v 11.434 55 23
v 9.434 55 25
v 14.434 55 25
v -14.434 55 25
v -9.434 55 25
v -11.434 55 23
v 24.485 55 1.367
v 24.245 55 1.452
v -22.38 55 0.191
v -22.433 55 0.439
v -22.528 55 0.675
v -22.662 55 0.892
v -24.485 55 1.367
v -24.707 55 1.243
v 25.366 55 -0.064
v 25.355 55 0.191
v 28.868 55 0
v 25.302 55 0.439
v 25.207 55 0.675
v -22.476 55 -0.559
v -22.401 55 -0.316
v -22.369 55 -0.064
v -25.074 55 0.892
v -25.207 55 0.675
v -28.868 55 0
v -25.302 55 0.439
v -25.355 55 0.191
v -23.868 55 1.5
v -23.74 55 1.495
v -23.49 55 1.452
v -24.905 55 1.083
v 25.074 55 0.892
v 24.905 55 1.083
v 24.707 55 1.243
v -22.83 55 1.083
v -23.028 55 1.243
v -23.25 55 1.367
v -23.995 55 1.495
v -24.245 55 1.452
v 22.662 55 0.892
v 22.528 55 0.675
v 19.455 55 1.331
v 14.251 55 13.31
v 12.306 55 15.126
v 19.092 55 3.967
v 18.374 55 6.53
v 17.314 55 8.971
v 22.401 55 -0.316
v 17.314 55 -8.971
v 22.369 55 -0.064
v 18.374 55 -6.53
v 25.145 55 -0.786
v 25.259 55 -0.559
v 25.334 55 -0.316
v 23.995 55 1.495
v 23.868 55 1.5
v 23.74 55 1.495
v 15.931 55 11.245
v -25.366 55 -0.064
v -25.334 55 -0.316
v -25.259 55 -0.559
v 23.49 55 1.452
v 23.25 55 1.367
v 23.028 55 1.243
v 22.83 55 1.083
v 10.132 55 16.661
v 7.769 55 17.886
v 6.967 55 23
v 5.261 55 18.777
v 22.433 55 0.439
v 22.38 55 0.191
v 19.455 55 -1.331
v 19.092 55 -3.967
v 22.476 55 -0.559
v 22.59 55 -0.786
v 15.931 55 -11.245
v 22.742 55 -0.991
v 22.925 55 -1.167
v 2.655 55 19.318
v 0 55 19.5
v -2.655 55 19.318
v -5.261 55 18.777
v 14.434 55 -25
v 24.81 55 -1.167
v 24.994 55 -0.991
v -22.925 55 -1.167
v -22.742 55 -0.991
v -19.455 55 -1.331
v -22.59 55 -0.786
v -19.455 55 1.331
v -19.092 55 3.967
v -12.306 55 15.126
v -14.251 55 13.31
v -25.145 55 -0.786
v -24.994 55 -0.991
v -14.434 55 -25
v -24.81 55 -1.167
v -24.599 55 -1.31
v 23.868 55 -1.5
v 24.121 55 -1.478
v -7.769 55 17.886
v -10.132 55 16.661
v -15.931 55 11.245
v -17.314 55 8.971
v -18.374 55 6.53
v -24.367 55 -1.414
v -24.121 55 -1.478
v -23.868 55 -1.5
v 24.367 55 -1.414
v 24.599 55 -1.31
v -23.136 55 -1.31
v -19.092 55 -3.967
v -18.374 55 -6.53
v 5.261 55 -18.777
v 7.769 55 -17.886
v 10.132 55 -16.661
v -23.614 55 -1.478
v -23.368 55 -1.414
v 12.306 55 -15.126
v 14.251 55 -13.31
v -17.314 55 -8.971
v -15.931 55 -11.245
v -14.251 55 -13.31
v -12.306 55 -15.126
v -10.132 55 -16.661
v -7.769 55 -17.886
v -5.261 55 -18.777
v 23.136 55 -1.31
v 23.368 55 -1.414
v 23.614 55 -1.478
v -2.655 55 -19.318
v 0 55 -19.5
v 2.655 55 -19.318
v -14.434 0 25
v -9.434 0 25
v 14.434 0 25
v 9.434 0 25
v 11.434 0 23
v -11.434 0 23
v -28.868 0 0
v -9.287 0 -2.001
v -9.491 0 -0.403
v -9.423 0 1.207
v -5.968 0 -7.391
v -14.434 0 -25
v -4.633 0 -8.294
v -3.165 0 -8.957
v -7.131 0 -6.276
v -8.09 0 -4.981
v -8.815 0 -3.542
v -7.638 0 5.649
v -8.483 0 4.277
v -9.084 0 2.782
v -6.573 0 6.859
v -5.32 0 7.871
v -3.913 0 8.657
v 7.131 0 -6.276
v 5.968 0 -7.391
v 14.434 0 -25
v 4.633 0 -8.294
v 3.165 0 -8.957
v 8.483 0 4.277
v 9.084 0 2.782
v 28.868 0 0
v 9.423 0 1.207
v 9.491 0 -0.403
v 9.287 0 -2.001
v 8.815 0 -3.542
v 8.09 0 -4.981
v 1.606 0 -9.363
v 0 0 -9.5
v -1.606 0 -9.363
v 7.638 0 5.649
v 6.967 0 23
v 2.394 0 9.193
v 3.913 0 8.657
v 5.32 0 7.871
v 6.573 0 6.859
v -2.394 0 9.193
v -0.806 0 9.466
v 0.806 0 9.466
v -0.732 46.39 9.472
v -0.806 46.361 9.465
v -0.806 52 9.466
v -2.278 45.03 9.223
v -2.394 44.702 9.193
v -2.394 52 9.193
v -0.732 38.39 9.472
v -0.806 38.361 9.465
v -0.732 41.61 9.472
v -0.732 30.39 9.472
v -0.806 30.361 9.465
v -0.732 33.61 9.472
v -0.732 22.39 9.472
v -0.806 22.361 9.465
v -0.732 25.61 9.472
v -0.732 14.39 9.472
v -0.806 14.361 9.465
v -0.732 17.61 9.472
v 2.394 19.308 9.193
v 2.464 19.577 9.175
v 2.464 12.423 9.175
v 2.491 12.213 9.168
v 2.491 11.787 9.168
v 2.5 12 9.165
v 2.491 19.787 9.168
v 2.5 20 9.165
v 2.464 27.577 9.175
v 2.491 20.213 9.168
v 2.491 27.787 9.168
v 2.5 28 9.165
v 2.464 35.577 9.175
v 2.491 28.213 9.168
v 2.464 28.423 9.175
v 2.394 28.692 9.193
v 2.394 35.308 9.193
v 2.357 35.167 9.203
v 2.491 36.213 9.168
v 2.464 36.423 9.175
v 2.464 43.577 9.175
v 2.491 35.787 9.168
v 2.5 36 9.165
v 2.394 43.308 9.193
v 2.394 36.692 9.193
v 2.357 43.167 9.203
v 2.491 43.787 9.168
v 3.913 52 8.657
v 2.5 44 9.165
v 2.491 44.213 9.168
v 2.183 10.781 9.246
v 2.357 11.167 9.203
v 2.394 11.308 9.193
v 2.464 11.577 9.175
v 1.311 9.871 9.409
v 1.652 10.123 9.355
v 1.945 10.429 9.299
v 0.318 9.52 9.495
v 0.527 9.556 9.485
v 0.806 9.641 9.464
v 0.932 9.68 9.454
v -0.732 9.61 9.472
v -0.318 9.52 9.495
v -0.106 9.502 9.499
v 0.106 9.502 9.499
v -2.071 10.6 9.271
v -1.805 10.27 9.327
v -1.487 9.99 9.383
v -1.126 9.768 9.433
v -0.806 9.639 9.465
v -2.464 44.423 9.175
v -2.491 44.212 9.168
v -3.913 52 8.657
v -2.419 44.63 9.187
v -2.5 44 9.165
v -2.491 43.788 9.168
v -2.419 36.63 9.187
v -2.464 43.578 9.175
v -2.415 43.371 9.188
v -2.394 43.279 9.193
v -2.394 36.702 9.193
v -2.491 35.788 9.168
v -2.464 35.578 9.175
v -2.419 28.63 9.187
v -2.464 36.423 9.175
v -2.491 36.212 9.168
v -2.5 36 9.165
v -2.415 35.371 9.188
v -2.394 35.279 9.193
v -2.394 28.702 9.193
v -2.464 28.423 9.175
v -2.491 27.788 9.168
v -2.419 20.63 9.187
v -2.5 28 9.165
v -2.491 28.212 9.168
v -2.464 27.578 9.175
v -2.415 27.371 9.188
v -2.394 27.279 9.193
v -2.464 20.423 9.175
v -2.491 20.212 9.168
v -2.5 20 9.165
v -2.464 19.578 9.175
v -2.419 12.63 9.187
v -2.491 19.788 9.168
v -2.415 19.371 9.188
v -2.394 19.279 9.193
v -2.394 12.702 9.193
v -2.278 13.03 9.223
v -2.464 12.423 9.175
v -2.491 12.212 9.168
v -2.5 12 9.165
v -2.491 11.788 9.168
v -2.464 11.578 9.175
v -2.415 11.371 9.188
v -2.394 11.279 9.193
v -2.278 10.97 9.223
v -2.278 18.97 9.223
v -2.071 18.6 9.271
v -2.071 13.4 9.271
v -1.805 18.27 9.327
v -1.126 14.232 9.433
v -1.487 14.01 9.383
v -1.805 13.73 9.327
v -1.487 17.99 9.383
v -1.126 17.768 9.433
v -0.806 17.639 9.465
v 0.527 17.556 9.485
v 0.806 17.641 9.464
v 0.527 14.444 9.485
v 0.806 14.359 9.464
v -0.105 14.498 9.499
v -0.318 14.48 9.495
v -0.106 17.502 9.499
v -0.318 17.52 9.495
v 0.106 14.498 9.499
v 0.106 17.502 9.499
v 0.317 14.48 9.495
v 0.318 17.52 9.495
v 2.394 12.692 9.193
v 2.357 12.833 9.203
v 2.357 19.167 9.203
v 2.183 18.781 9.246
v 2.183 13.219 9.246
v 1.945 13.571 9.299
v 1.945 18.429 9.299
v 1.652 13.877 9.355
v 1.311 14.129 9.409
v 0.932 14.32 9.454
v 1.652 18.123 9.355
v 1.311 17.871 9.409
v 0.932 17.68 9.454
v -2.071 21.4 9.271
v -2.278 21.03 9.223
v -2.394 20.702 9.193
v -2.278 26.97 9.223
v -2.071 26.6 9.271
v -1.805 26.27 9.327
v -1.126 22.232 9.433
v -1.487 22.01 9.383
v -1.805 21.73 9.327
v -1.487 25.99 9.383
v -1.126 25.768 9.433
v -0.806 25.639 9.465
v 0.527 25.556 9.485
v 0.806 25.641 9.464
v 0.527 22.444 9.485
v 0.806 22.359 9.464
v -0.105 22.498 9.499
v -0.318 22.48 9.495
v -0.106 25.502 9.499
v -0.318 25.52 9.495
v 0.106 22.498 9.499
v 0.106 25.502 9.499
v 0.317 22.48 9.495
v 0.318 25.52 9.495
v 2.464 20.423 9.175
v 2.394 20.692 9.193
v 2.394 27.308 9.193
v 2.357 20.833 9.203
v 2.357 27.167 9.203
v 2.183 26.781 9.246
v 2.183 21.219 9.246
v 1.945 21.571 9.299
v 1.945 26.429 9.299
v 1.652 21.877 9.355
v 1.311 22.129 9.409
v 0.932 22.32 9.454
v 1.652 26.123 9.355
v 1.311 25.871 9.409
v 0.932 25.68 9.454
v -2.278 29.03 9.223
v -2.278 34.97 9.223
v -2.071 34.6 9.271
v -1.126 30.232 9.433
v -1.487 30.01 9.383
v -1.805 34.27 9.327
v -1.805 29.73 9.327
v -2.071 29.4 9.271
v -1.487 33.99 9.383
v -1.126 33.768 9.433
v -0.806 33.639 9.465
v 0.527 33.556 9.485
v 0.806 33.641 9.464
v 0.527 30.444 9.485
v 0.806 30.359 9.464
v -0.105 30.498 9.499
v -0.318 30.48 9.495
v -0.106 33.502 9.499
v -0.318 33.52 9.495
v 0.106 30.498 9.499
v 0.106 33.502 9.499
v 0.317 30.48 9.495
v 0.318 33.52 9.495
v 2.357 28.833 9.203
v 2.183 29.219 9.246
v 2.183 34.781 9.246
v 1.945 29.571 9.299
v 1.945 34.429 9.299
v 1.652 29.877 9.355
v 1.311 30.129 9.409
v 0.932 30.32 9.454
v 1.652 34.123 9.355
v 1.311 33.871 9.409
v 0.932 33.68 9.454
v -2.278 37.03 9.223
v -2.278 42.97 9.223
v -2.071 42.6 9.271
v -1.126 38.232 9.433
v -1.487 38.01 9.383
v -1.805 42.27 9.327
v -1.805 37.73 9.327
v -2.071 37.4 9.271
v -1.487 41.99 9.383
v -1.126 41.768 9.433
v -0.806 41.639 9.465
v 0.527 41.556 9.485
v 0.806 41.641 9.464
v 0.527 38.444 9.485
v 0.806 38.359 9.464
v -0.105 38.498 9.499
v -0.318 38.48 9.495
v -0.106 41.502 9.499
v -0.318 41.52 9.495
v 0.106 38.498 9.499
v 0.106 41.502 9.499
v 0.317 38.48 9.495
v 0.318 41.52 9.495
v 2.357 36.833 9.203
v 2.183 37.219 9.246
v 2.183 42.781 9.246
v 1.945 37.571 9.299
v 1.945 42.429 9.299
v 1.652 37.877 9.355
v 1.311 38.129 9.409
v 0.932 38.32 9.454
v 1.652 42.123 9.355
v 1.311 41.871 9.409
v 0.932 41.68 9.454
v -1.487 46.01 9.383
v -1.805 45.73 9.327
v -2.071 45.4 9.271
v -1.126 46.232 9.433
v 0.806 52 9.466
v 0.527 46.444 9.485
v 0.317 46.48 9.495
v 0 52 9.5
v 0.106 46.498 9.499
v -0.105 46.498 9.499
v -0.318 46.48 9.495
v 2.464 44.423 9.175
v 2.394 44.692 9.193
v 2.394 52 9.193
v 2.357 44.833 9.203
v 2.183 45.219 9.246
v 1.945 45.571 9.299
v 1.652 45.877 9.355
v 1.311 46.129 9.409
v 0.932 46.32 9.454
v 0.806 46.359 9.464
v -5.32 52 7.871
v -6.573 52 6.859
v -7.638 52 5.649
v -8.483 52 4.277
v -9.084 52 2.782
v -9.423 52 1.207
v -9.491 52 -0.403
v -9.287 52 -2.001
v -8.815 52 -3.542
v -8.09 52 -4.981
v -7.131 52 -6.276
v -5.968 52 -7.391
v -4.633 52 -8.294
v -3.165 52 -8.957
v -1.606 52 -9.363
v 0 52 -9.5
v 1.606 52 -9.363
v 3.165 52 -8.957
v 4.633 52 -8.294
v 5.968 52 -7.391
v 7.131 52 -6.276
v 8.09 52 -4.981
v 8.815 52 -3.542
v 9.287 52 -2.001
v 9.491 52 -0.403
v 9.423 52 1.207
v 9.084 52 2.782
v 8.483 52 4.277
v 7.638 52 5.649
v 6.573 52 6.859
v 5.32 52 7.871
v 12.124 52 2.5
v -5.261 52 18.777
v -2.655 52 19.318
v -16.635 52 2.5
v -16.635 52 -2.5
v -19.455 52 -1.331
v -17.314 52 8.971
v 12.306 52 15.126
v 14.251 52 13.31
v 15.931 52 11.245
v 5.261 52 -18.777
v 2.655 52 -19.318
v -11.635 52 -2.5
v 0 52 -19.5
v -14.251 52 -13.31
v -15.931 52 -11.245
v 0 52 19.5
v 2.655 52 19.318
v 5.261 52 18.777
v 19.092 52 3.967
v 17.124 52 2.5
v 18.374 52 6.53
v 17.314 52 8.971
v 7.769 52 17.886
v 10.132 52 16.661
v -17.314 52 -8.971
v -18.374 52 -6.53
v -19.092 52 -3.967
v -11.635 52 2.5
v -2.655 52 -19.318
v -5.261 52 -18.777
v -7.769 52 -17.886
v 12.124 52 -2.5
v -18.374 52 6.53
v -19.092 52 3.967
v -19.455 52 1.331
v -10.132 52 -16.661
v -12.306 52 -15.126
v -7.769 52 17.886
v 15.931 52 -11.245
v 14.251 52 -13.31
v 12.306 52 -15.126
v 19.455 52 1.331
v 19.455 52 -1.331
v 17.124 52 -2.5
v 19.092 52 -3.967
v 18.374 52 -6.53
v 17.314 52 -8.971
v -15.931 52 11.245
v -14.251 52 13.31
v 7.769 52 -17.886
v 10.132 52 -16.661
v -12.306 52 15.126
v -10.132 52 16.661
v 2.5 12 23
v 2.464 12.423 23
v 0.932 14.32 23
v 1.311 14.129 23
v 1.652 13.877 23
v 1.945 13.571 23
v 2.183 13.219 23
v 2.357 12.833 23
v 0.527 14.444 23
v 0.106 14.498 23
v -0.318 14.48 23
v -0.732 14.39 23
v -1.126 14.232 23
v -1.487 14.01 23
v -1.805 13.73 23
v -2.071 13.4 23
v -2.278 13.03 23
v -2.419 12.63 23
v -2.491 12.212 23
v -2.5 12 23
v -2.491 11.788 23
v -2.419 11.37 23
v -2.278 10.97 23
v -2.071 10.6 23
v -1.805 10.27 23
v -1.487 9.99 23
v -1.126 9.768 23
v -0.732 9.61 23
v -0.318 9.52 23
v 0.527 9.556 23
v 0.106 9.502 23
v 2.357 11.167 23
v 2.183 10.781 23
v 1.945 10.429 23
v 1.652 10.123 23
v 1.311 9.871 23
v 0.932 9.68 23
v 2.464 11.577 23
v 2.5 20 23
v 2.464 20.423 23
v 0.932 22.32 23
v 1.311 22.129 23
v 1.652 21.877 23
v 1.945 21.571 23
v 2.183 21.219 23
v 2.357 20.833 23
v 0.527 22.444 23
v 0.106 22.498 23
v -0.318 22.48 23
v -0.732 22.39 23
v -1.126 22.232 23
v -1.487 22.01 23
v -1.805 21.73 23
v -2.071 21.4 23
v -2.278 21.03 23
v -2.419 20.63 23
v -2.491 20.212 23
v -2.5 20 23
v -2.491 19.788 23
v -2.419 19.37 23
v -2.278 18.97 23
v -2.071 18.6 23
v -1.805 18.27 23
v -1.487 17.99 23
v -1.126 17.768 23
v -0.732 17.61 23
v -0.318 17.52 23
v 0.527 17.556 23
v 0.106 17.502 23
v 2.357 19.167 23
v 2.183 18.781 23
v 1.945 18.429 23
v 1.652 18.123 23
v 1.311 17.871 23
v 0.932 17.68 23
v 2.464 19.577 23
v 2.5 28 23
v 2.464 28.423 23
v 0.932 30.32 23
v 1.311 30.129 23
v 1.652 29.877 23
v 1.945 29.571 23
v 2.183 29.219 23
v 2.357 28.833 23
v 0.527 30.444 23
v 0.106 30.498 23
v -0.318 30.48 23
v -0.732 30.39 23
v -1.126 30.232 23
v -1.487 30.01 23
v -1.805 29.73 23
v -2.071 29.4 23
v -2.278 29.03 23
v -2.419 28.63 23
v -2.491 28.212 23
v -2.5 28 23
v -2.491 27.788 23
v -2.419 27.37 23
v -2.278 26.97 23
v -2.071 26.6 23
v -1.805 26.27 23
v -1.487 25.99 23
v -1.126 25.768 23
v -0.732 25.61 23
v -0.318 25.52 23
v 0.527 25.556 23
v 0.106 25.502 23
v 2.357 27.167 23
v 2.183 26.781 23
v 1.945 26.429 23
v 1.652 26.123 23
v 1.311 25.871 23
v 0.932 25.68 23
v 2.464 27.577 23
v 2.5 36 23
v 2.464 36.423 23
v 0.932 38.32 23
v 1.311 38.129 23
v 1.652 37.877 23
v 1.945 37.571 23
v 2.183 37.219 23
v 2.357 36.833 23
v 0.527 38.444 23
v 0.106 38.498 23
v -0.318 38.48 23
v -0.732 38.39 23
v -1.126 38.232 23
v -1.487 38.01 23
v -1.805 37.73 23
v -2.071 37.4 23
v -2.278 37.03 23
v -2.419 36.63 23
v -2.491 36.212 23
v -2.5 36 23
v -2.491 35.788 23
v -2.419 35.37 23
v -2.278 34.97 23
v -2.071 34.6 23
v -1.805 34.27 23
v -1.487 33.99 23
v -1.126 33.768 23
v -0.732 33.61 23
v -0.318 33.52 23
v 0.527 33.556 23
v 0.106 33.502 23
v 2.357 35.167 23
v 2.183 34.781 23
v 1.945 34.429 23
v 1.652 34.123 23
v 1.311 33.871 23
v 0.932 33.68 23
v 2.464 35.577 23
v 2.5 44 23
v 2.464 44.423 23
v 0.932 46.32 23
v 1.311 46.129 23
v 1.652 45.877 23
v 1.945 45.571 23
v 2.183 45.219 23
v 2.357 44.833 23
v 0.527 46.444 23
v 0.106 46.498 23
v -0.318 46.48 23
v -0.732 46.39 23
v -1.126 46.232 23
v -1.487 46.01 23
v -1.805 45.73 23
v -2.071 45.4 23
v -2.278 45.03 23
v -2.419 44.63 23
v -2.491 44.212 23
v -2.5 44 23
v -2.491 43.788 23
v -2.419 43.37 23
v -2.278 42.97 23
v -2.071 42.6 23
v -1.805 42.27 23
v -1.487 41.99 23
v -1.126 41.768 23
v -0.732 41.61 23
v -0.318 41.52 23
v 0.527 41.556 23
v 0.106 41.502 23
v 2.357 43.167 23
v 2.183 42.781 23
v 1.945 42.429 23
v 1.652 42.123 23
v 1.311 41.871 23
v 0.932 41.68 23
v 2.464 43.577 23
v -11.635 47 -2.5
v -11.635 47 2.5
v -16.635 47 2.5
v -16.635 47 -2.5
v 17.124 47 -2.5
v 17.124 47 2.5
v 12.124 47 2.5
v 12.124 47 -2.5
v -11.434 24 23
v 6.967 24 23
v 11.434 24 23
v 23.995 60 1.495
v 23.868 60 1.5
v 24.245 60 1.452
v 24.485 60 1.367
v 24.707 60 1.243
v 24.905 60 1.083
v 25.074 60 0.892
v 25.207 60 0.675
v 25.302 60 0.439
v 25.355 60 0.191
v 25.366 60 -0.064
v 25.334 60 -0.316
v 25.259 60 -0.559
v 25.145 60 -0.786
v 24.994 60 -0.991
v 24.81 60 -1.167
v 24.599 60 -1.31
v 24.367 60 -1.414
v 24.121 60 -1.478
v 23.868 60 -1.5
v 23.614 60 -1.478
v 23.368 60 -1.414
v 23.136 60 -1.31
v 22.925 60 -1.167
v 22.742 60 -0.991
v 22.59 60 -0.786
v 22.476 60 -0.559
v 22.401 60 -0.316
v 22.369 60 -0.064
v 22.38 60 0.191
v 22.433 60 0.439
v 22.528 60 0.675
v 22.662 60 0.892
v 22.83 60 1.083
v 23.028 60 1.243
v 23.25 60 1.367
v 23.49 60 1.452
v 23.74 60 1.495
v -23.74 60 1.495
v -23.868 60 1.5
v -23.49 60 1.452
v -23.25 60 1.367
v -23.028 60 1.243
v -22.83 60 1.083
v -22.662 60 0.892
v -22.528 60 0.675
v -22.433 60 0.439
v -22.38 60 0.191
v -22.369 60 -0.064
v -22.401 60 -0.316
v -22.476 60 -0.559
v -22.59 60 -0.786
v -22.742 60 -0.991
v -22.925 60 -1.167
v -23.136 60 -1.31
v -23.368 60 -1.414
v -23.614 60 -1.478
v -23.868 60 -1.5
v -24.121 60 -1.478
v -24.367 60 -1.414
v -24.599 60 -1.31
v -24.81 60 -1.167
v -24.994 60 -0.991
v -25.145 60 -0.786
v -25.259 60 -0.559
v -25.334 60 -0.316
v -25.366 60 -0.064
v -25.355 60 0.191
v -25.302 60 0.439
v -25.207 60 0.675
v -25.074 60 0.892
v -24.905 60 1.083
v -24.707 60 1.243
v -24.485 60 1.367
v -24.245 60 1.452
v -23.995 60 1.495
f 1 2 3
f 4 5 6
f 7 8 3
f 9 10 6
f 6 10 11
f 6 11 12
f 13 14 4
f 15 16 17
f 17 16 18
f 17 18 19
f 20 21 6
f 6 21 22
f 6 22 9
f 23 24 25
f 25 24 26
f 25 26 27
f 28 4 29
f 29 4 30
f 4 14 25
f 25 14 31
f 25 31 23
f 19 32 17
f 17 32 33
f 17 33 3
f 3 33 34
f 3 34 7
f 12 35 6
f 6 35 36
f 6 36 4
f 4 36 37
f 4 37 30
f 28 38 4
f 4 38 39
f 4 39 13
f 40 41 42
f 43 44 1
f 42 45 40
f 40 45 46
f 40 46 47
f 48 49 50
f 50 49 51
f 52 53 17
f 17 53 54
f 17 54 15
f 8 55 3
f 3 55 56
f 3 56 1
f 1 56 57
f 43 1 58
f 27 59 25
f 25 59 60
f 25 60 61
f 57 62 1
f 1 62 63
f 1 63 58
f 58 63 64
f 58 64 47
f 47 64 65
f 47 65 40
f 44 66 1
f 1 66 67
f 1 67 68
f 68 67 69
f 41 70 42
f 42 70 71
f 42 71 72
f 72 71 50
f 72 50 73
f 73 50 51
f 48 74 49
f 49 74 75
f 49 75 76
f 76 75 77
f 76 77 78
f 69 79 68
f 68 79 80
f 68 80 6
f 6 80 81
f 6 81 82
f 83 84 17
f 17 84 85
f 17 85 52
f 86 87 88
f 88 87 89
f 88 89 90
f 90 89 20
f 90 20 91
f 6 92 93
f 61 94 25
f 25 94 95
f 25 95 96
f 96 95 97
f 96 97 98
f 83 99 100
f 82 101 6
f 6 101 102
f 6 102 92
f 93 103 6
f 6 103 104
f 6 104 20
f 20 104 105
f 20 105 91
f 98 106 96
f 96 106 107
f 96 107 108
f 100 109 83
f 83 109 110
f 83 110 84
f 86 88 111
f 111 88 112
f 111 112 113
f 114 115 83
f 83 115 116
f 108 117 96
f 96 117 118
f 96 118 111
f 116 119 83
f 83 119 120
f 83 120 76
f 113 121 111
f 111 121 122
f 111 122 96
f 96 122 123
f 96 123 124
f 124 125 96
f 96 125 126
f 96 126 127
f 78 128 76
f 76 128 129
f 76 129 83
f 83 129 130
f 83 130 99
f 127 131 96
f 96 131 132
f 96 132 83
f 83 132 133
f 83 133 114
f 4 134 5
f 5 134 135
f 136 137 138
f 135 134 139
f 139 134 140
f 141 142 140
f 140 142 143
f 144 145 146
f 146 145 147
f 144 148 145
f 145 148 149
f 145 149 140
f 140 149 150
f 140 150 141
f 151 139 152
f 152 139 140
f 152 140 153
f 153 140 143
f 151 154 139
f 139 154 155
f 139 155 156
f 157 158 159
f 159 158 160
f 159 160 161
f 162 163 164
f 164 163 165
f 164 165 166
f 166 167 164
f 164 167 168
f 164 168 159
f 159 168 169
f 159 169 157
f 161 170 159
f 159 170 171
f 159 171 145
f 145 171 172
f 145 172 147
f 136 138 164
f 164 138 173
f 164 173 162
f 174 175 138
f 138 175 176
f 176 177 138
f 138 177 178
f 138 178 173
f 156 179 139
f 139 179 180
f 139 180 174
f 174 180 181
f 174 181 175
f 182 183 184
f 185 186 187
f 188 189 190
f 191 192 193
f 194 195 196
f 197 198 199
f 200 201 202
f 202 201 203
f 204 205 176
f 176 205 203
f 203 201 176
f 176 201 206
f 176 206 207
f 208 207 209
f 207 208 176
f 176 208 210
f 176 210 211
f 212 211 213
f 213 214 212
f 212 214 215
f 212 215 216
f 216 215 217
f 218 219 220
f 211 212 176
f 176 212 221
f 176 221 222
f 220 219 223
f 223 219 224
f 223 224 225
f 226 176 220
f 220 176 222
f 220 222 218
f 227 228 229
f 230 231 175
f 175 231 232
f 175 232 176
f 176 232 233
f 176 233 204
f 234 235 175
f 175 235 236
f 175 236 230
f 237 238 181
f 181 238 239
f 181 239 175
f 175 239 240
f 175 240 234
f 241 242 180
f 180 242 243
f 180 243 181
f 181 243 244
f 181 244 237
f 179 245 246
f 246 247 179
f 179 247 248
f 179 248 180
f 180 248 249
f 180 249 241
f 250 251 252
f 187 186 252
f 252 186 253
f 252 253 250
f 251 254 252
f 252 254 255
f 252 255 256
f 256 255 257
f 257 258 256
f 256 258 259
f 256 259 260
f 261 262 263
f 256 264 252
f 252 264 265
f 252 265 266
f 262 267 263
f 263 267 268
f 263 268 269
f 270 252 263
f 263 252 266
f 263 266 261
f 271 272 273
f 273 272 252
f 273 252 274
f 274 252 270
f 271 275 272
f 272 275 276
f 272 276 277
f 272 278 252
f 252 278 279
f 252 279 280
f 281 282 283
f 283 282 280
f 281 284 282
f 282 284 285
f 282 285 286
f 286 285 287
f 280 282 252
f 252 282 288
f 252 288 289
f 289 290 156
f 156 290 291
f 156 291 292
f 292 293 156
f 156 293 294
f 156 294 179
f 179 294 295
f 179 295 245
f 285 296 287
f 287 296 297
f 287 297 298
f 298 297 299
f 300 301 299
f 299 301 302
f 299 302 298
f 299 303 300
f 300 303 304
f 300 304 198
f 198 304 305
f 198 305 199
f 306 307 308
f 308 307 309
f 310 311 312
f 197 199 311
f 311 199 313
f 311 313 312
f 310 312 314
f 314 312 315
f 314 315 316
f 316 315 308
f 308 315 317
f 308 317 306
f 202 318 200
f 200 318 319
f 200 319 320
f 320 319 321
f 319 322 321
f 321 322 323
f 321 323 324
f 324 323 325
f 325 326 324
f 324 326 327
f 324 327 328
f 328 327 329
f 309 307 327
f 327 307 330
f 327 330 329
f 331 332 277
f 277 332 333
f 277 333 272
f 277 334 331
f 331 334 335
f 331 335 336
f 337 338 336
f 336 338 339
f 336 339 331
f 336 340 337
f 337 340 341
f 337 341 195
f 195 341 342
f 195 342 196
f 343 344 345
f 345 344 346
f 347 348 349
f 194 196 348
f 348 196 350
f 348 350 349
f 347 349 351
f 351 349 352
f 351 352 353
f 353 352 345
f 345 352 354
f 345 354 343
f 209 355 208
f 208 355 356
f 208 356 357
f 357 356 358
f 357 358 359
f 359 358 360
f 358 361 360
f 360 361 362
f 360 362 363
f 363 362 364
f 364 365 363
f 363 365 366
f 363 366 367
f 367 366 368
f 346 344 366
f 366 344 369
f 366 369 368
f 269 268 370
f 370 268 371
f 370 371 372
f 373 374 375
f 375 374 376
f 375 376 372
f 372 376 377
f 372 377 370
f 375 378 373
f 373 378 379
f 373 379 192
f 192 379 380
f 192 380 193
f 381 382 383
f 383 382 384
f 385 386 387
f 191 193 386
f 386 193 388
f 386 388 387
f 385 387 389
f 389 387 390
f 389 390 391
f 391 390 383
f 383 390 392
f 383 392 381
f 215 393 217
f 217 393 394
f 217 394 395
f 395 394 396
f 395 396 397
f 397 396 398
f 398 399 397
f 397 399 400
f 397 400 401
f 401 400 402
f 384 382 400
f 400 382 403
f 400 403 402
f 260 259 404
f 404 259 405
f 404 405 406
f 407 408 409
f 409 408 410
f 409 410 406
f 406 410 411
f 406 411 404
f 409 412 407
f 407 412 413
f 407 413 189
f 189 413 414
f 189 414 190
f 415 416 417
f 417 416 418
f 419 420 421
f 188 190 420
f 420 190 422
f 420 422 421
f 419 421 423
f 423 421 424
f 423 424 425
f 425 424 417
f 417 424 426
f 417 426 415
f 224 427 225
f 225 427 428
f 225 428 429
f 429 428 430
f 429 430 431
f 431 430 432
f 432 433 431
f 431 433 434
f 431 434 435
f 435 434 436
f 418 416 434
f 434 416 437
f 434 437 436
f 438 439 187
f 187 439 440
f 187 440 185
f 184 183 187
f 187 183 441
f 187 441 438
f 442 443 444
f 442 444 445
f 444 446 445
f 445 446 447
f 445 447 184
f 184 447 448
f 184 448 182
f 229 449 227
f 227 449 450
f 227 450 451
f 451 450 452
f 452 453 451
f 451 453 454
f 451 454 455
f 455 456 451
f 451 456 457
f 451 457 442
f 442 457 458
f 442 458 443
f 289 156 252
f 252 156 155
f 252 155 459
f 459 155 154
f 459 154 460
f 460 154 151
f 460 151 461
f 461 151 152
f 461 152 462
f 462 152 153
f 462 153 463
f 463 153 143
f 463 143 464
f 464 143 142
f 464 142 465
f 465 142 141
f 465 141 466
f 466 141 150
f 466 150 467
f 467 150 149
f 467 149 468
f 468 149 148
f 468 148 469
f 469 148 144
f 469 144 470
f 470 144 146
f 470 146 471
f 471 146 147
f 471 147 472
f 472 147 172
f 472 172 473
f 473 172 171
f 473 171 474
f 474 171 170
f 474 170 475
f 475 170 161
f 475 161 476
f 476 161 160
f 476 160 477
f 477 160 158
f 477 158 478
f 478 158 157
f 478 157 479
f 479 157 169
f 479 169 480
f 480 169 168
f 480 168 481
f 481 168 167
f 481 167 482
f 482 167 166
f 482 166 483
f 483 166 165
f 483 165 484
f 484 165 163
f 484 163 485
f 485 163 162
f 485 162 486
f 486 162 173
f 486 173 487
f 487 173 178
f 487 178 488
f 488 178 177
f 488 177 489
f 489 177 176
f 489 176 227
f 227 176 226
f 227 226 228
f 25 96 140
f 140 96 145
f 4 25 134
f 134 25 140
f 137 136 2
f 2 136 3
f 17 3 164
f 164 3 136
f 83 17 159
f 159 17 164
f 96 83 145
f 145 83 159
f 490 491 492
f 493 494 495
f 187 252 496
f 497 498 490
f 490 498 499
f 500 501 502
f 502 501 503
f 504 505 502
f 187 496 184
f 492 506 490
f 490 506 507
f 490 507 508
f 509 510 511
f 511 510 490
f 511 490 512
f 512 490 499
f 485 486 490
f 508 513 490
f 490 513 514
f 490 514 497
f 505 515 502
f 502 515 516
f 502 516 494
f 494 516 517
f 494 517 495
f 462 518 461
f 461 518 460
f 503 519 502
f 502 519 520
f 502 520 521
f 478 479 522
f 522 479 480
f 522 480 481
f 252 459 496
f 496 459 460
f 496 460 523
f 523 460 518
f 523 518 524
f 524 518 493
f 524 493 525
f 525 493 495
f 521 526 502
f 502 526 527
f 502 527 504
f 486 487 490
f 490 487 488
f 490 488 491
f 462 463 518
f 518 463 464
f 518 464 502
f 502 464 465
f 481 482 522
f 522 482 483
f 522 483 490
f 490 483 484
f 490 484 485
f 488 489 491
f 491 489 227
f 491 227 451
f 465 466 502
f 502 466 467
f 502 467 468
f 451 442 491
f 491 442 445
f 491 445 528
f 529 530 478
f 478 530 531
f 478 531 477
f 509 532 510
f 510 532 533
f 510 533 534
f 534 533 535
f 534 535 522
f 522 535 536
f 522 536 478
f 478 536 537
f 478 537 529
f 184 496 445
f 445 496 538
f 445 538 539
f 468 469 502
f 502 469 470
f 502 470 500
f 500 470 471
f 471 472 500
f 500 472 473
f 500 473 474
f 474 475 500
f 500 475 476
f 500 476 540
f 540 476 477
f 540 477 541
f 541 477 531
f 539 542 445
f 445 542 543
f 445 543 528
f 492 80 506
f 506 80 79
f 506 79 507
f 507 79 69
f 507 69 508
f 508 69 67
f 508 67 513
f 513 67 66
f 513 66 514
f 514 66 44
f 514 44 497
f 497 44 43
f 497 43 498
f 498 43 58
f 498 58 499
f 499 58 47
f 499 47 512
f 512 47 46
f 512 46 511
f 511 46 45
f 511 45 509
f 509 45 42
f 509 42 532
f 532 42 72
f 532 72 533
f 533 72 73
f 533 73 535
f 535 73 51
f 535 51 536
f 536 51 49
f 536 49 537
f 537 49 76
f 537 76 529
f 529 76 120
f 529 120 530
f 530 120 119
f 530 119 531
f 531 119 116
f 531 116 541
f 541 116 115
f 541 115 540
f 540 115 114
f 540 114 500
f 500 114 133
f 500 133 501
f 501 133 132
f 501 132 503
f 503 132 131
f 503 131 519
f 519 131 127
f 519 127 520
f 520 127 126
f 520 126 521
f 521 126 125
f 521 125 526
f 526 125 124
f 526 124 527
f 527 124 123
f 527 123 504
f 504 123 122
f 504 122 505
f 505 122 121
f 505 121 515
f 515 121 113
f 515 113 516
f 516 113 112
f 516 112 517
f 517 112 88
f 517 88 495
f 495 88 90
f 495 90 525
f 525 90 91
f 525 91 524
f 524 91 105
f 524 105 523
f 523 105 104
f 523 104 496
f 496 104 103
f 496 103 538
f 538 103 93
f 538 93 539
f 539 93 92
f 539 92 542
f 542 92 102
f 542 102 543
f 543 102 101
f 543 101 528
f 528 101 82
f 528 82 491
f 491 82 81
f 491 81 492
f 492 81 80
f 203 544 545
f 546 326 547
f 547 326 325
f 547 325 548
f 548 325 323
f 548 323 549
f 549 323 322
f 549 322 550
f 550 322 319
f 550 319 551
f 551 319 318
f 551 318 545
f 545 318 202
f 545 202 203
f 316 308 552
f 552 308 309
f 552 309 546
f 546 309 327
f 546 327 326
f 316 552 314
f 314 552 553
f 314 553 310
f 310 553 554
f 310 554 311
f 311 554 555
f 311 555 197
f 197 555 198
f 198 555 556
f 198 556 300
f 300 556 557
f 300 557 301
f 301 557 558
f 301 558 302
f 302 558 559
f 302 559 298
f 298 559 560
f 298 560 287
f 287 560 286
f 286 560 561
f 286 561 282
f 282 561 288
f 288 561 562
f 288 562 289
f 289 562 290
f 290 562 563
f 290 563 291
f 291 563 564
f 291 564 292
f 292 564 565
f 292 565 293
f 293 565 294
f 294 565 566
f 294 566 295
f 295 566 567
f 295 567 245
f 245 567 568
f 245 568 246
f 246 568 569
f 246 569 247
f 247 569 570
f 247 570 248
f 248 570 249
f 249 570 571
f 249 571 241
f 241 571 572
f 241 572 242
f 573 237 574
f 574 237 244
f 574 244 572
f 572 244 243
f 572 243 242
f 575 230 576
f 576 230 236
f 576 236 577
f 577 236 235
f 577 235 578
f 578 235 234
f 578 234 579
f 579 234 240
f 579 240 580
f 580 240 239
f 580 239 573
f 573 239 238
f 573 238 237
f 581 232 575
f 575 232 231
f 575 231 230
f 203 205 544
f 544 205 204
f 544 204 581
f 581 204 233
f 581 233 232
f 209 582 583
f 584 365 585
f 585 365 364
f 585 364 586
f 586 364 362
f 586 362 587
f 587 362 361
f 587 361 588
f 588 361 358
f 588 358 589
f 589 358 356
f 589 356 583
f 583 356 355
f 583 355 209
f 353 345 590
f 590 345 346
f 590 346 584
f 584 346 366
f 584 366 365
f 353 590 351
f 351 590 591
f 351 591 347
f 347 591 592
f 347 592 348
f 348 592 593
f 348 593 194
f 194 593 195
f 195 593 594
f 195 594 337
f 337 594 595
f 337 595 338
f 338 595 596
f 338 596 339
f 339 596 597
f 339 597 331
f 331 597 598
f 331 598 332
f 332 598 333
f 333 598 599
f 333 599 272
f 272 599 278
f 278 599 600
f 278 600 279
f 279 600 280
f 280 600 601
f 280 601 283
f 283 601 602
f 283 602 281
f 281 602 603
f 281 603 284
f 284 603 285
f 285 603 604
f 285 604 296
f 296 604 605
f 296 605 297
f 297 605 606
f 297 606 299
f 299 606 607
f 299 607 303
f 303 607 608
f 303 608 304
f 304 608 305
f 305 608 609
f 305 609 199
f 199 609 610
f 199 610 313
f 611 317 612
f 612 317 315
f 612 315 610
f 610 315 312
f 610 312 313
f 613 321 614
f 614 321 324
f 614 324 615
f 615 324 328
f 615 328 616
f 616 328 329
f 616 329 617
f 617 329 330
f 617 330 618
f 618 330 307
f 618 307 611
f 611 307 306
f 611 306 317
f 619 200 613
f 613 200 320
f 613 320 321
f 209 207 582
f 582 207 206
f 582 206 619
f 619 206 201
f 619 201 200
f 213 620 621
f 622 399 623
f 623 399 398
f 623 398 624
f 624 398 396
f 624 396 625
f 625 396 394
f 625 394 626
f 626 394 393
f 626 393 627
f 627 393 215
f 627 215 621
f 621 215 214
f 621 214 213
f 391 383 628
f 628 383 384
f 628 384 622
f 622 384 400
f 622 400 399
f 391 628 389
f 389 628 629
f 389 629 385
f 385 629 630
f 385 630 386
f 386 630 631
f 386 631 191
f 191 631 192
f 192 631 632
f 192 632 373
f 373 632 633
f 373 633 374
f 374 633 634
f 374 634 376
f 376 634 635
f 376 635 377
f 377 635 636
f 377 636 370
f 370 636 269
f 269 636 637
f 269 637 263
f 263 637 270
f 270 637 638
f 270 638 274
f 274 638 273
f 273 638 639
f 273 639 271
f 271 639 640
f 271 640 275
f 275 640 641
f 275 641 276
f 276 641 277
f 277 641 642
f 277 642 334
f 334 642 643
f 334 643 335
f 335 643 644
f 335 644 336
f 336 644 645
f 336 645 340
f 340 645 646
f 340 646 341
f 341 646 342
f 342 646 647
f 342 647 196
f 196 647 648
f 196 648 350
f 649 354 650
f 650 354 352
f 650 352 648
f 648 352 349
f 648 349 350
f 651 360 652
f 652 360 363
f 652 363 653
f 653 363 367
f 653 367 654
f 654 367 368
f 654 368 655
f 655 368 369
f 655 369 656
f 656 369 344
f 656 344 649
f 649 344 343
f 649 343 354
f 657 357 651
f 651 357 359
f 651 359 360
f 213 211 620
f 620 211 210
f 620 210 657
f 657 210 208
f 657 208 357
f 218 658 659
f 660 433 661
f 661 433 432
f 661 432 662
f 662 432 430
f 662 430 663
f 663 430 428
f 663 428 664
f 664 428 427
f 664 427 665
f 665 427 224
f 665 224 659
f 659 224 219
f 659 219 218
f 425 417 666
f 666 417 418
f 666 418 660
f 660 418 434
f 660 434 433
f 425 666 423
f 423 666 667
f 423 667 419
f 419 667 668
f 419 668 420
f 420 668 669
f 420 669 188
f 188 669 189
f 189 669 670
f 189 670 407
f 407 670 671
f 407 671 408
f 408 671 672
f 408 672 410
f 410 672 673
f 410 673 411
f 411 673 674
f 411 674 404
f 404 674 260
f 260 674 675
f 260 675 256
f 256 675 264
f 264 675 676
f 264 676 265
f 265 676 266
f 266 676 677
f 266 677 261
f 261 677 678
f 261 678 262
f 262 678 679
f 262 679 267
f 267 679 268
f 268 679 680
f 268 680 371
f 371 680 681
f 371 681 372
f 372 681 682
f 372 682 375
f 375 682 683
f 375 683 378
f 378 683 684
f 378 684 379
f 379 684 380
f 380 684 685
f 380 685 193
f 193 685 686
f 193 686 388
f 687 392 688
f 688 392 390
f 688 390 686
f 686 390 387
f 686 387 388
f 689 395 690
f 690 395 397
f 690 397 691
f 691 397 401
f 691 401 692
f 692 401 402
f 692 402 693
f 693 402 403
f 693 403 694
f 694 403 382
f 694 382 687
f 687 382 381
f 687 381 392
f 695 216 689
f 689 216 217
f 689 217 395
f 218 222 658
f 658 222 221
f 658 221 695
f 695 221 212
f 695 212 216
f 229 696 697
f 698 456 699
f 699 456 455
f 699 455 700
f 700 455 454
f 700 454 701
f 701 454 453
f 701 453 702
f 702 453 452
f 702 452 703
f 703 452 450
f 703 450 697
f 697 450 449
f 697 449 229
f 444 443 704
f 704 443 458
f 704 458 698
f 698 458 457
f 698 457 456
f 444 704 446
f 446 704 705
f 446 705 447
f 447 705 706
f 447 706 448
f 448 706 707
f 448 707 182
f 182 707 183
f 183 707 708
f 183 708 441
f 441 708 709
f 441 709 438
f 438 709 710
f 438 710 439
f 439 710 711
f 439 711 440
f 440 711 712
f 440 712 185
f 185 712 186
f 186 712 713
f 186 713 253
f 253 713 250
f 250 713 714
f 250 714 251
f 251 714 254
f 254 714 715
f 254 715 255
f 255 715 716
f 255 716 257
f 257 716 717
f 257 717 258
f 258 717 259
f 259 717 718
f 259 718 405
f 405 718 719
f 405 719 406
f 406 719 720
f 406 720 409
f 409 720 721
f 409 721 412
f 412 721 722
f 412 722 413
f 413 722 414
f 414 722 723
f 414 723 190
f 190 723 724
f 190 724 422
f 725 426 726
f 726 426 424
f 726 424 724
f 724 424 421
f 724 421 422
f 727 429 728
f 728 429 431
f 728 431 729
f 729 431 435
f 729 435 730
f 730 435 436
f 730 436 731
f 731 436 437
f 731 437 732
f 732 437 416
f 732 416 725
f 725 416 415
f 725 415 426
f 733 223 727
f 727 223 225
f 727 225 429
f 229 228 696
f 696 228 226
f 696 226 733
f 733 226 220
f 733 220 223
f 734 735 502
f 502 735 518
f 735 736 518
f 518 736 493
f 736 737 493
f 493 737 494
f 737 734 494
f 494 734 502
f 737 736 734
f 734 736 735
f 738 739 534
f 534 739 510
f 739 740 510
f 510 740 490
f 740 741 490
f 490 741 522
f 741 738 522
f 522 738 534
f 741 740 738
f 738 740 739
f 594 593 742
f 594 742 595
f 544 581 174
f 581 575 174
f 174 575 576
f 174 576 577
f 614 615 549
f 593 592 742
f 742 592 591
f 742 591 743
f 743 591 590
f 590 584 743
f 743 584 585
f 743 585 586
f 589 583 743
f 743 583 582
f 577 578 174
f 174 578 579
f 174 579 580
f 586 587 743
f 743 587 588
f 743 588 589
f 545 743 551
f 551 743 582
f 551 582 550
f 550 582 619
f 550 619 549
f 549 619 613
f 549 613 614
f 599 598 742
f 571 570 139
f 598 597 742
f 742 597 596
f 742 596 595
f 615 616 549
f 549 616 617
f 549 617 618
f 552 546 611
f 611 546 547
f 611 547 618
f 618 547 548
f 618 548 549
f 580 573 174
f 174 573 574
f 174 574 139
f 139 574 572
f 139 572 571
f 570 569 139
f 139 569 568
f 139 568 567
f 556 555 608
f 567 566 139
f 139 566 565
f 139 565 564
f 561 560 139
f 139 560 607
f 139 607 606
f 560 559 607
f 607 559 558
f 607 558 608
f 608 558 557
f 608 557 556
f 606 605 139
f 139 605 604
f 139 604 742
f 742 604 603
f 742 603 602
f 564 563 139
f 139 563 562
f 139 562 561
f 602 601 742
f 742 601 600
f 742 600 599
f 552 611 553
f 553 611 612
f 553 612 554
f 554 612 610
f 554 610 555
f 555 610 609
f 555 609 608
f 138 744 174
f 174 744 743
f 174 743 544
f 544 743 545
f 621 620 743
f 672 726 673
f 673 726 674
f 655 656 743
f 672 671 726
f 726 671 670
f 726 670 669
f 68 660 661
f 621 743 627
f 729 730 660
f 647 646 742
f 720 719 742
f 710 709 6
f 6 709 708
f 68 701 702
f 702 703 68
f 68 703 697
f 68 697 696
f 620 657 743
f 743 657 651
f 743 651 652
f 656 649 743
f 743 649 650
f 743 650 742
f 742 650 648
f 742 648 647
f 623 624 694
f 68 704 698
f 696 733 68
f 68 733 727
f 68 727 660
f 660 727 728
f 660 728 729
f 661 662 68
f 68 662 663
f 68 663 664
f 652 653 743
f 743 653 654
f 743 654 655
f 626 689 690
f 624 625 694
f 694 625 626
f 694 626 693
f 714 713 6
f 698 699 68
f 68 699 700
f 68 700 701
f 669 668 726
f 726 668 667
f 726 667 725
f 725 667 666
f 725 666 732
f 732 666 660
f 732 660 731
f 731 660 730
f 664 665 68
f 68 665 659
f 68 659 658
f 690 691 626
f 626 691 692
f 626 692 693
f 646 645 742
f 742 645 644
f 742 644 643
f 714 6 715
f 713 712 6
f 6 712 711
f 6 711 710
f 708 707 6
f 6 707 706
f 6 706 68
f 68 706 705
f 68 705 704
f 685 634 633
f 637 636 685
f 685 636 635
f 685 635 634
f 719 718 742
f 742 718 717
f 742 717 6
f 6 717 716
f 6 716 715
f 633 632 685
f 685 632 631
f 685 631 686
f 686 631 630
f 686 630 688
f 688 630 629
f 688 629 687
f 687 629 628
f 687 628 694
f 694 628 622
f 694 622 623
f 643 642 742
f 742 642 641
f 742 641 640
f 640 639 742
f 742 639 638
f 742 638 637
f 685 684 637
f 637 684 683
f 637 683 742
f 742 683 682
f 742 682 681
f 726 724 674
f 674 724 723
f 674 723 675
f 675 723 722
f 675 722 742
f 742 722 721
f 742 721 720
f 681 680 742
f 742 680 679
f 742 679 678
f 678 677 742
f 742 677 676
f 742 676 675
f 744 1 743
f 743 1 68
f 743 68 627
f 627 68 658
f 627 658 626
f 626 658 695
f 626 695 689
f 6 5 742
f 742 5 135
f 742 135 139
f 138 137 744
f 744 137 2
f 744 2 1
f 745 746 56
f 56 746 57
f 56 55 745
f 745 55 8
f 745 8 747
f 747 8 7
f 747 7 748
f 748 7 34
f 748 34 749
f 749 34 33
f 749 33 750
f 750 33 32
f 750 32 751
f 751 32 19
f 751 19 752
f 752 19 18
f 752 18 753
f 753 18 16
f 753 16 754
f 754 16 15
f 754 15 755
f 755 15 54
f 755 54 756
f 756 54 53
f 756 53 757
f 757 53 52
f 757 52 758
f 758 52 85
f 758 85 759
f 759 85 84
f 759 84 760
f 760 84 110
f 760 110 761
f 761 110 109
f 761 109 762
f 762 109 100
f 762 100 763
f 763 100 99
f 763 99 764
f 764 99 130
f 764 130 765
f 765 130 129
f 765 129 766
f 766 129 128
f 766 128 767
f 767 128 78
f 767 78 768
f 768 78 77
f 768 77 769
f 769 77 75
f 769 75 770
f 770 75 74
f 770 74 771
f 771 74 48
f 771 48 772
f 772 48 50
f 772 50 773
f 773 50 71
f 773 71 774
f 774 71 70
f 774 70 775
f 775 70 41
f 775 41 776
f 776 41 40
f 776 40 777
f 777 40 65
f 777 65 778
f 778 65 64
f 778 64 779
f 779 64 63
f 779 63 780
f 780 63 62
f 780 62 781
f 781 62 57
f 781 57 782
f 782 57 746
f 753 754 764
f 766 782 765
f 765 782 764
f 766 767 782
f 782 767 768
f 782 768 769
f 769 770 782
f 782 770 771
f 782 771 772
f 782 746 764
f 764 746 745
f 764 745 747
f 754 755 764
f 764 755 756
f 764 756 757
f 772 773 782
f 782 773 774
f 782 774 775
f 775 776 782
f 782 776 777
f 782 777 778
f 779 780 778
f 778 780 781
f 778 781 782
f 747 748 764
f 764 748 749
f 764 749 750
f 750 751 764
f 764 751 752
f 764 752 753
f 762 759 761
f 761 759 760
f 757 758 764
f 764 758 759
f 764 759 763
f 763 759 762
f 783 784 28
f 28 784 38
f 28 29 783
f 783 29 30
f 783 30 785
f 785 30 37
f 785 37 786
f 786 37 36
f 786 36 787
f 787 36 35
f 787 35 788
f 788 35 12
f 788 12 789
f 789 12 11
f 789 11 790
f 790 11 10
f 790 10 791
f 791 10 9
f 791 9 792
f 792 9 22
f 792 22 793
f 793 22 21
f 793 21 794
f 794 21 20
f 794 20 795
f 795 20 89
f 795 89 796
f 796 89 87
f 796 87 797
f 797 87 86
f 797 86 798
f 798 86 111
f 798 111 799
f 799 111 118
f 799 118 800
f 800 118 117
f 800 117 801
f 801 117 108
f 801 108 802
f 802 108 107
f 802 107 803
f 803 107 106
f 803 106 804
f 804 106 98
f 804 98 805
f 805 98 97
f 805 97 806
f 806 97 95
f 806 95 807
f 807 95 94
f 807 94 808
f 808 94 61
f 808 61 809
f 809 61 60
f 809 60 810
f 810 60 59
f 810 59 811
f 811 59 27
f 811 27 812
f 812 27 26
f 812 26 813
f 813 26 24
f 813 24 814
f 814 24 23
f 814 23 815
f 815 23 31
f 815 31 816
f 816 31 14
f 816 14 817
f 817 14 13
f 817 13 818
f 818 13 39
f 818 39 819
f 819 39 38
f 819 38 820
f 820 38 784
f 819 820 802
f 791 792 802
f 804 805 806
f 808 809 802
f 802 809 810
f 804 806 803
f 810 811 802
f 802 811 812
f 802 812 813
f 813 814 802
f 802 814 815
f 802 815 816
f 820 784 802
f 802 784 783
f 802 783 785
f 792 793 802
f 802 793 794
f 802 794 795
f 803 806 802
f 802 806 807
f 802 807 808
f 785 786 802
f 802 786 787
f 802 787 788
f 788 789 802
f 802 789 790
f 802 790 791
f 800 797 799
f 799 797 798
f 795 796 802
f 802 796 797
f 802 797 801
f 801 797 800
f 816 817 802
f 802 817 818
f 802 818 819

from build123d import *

# Parameters (mm, degrees)
BOSS_EXTRUDE1_DEPTH = 55
SKETCH2_R           = 9.5
CUT_EXTRUDE1_DEPTH  = 60
SKETCH3_R           = 19.5
CUT_EXTRUDE2_DEPTH  = 3
SKETCH4_R           = 2.5
CUT_EXTRUDE3_DEPTH  = 23
SKETCH5_W           = 5
SKETCH5_H           = 5
CUT_EXTRUDE4_DEPTH  = 5
CUT_EXTRUDE5_DEPTH  = 60
SKETCH7_R           = 1.5
BOSS_EXTRUDE2_DEPTH = 5


with BuildPart() as part:
    # Sketch1 → Boss-Extrude1 (new body)
    with BuildSketch(Plane(origin=(0, 0, 0), x_dir=(1, 0, 0), z_dir=(0, 1, 0))):
        Polygon((-28.867513459, 0), (-14.43375673, -25), (14.43375673, -25), (28.867513459, 0), (14.43375673, 25), (-14.43375673, 25), align=None)
    extrude(amount=BOSS_EXTRUDE1_DEPTH)

    # Sketch2 → Cut-Extrude1 (cut)
    with BuildSketch(Plane.XZ):
        with Locations(Location((0, 0, 0), (0, 0, 270))):
            Circle(SKETCH2_R)
    extrude(amount=-CUT_EXTRUDE1_DEPTH, mode=Mode.SUBTRACT)

    # Sketch3 → Cut-Extrude2 (cut)
    with BuildSketch(Plane(origin=(0, 55, 0), x_dir=(1, 0, 0), z_dir=(0, 1, 0))):
        with Locations(Location((0, 0, 0), (0, 0, 270))):
            Circle(SKETCH3_R)
    extrude(amount=-CUT_EXTRUDE2_DEPTH, mode=Mode.SUBTRACT)

    # Sketch4 → Cut-Extrude3 (cut)
    with BuildSketch(Plane.XY.offset(25)):
        with Locations((0, 12)):
            Circle(SKETCH4_R)
        with Locations((0, 20)):
            Circle(SKETCH4_R)
        with Locations((0, 28)):
            Circle(SKETCH4_R)
        with Locations((0, 36)):
            Circle(SKETCH4_R)
        with Locations((0, 44)):
            Circle(SKETCH4_R)
    extrude(amount=-CUT_EXTRUDE3_DEPTH, mode=Mode.SUBTRACT)

    # Sketch5 → Cut-Extrude4 (cut)
    with BuildSketch(Plane(origin=(0, 52, 0), x_dir=(1, 0, 0), z_dir=(0, 1, 0))):
        with Locations((-14.134558147, 0)):
            Rectangle(SKETCH5_W, SKETCH5_H)
        with Locations((14.623643585, 0)):
            Rectangle(SKETCH5_W, SKETCH5_H)
    extrude(amount=-CUT_EXTRUDE4_DEPTH, mode=Mode.SUBTRACT)

    # Sketch6 → Cut-Extrude5 (cut)
    with BuildSketch(Plane.XZ):
        Polygon((9.43375673, 25), (-9.43375673, 25), (-11.43375673, 23), (-9.43375673, 23), (9.43375673, 23), (11.43375673, 23), align=None)
    extrude(amount=-CUT_EXTRUDE5_DEPTH, mode=Mode.SUBTRACT)

    # Sketch7 → Boss-Extrude2 (add)
    with BuildSketch(Plane(origin=(0, 55, 0), x_dir=(1, 0, 0), z_dir=(0, 1, 0))):
        with Locations(Location((23.867513459, 0, 0), (0, 0, 270))):
            Circle(SKETCH7_R)
        with Locations(Location((-23.867513459, 0, 0), (0, 0, 270))):
            Circle(SKETCH7_R)
    extrude(amount=BOSS_EXTRUDE2_DEPTH)


solid = part.part
